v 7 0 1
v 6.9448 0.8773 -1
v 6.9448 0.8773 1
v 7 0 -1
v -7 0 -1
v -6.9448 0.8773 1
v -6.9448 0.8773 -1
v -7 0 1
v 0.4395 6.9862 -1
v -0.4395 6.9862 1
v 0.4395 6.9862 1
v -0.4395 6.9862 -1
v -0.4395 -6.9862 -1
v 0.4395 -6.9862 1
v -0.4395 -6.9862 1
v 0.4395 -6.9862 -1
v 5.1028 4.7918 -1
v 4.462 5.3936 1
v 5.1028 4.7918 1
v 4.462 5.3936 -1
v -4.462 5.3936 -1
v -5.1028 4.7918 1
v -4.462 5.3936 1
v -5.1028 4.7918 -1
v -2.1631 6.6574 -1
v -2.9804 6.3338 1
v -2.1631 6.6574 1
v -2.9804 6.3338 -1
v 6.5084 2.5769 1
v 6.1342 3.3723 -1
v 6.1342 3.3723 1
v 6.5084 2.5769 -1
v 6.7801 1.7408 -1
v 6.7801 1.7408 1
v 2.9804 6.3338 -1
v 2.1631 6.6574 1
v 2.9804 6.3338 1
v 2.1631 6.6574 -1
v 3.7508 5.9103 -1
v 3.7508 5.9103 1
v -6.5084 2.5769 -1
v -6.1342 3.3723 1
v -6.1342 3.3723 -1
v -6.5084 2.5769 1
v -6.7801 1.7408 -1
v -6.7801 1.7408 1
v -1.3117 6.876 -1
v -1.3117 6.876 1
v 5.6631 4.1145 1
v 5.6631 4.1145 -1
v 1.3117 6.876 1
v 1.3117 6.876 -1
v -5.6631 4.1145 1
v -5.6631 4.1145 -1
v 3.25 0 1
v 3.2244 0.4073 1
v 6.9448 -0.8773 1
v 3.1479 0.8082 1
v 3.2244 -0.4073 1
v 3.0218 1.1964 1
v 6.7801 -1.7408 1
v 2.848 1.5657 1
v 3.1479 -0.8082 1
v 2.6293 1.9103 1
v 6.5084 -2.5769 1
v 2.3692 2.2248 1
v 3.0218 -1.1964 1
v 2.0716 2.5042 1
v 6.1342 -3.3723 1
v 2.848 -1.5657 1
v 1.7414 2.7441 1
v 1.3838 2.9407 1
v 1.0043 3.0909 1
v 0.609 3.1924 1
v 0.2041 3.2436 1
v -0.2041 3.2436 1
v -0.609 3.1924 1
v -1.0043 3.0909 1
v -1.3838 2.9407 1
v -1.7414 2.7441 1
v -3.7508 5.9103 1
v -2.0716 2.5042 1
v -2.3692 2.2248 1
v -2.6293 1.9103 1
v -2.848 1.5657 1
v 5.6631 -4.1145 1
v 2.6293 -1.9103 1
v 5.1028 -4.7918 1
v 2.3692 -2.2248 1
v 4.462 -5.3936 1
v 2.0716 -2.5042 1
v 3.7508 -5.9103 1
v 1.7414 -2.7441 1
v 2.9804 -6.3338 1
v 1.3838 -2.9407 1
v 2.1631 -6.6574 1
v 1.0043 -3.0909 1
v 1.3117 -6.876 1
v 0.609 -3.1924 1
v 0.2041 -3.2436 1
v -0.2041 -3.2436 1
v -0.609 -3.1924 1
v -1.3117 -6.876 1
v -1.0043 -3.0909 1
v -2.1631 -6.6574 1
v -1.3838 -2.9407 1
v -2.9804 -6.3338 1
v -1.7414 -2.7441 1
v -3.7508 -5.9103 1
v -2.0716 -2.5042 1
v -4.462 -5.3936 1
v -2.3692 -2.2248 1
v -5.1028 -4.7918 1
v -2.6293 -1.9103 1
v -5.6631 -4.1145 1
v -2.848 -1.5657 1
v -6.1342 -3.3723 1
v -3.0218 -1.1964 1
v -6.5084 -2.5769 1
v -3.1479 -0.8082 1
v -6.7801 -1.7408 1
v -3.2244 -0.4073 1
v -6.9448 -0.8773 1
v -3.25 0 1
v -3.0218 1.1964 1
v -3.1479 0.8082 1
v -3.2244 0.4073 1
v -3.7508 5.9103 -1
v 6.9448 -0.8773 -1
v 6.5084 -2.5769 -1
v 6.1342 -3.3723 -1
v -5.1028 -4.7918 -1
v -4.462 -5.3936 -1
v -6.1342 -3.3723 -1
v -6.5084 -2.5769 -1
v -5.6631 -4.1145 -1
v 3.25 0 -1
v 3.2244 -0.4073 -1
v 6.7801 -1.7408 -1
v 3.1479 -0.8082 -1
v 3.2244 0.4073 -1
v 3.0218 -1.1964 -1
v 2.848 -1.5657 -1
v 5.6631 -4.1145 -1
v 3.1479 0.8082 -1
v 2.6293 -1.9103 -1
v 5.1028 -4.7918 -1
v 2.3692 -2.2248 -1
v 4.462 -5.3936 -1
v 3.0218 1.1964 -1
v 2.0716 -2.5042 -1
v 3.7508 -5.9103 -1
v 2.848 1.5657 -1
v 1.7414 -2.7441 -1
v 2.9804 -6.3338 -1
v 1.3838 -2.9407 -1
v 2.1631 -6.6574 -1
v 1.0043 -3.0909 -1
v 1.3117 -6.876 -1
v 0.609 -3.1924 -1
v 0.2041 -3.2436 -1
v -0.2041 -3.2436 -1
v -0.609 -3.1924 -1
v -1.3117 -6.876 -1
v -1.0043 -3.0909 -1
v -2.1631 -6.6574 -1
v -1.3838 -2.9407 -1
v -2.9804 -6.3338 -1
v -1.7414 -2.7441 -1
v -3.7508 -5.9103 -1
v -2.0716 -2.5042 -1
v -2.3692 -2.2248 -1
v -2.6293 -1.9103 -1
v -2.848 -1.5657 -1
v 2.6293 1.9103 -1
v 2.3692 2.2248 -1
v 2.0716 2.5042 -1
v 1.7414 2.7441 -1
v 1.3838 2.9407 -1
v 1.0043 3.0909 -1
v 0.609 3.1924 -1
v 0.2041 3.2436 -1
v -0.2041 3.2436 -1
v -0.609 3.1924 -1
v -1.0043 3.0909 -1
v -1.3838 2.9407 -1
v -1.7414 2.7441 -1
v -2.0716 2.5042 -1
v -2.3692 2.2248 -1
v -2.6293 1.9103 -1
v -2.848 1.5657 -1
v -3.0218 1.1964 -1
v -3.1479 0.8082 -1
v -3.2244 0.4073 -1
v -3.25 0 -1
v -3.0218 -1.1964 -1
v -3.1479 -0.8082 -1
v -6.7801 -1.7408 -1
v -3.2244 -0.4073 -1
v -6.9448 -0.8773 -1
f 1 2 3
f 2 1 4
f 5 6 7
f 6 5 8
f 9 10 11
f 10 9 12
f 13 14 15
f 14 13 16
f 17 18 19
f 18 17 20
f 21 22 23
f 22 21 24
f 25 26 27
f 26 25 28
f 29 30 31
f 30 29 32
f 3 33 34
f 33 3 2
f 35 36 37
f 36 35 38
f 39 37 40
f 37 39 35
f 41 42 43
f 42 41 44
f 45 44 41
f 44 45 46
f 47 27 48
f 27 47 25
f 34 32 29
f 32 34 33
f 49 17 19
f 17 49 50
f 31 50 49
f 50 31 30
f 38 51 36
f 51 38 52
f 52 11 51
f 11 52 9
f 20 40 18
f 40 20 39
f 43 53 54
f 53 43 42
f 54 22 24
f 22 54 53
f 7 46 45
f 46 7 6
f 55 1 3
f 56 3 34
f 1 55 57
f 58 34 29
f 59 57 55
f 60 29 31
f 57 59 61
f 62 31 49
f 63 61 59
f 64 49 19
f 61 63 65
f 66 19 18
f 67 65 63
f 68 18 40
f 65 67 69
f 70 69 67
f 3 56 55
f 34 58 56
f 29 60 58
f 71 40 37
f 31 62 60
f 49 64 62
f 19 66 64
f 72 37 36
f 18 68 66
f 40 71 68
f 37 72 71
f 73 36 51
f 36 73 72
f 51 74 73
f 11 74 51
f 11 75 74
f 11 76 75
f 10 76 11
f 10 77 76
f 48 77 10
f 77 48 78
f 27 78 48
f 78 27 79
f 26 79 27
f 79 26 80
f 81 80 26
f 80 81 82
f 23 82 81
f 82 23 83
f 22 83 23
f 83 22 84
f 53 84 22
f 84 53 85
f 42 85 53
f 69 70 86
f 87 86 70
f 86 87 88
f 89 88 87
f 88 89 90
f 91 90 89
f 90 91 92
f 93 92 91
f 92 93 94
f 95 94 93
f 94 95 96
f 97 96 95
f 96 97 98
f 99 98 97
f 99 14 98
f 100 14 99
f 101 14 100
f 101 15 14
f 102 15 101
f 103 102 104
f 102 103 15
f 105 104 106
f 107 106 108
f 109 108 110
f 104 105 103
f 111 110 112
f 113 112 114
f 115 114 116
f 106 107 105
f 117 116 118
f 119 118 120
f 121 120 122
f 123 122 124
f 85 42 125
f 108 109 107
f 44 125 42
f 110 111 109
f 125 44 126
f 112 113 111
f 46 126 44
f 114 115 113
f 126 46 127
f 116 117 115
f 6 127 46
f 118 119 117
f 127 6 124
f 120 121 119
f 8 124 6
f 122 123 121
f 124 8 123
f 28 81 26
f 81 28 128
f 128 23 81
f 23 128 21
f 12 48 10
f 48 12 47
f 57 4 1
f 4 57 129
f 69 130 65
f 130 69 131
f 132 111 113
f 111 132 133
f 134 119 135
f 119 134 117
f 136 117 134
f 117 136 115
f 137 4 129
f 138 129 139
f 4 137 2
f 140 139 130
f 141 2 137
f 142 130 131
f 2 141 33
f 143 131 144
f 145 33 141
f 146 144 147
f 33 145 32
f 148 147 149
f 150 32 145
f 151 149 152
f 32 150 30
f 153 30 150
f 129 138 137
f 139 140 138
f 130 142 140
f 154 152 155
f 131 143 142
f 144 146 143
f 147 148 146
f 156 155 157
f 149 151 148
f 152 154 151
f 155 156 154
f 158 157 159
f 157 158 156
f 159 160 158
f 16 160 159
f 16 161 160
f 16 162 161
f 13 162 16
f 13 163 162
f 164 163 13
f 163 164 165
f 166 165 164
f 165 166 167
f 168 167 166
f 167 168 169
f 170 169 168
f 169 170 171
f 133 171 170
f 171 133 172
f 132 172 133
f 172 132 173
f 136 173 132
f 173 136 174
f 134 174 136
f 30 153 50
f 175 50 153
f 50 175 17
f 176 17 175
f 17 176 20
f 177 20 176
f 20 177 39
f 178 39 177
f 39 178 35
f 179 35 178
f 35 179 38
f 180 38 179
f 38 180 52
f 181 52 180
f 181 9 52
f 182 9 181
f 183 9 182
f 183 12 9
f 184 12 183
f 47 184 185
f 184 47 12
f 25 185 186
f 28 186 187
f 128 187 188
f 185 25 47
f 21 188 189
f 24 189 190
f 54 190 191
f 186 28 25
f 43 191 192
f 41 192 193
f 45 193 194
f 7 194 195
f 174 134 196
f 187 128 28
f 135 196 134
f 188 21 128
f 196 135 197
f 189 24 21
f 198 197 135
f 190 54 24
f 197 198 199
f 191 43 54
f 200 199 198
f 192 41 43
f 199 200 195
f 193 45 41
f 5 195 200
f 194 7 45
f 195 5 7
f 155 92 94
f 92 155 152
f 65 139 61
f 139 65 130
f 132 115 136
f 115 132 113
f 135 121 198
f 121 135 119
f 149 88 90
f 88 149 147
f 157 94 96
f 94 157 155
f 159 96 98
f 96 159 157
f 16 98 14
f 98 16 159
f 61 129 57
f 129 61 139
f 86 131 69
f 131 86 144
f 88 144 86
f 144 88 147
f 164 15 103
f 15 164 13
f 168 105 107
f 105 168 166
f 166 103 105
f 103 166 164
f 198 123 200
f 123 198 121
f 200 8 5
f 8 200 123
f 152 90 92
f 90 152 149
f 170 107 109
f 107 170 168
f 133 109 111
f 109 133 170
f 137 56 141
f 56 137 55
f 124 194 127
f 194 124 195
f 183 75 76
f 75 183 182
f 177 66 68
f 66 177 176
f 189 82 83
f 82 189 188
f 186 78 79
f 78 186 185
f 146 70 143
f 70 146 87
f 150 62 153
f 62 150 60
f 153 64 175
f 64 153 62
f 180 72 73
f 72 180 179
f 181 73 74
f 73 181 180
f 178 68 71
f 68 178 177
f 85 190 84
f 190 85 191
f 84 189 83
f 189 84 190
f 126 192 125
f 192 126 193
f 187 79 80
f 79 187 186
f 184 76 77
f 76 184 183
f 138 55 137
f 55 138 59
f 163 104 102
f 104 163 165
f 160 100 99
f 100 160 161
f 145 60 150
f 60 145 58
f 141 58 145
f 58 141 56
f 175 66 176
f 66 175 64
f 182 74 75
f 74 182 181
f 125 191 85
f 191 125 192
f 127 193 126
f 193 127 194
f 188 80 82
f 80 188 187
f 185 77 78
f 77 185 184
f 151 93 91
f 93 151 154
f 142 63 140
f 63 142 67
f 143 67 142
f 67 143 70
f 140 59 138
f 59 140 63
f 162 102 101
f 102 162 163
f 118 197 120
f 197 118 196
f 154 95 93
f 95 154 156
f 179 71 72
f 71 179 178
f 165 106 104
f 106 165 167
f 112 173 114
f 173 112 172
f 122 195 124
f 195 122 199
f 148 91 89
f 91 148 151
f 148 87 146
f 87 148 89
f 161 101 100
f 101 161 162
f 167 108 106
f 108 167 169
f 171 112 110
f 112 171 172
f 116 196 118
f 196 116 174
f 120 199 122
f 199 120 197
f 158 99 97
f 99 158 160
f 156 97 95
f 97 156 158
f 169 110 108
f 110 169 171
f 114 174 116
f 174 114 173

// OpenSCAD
$fn = 50;


difference() {
	union() {
		translate(v = [0, 0, -1.0000000000]) {
			cylinder(h = 2, r = 7.0000000000);
		}
	}
	union() {
		translate(v = [0, 0, -100.0000000000]) {
			cylinder(h = 200, r = 3.2500000000);
		}
	}
}
